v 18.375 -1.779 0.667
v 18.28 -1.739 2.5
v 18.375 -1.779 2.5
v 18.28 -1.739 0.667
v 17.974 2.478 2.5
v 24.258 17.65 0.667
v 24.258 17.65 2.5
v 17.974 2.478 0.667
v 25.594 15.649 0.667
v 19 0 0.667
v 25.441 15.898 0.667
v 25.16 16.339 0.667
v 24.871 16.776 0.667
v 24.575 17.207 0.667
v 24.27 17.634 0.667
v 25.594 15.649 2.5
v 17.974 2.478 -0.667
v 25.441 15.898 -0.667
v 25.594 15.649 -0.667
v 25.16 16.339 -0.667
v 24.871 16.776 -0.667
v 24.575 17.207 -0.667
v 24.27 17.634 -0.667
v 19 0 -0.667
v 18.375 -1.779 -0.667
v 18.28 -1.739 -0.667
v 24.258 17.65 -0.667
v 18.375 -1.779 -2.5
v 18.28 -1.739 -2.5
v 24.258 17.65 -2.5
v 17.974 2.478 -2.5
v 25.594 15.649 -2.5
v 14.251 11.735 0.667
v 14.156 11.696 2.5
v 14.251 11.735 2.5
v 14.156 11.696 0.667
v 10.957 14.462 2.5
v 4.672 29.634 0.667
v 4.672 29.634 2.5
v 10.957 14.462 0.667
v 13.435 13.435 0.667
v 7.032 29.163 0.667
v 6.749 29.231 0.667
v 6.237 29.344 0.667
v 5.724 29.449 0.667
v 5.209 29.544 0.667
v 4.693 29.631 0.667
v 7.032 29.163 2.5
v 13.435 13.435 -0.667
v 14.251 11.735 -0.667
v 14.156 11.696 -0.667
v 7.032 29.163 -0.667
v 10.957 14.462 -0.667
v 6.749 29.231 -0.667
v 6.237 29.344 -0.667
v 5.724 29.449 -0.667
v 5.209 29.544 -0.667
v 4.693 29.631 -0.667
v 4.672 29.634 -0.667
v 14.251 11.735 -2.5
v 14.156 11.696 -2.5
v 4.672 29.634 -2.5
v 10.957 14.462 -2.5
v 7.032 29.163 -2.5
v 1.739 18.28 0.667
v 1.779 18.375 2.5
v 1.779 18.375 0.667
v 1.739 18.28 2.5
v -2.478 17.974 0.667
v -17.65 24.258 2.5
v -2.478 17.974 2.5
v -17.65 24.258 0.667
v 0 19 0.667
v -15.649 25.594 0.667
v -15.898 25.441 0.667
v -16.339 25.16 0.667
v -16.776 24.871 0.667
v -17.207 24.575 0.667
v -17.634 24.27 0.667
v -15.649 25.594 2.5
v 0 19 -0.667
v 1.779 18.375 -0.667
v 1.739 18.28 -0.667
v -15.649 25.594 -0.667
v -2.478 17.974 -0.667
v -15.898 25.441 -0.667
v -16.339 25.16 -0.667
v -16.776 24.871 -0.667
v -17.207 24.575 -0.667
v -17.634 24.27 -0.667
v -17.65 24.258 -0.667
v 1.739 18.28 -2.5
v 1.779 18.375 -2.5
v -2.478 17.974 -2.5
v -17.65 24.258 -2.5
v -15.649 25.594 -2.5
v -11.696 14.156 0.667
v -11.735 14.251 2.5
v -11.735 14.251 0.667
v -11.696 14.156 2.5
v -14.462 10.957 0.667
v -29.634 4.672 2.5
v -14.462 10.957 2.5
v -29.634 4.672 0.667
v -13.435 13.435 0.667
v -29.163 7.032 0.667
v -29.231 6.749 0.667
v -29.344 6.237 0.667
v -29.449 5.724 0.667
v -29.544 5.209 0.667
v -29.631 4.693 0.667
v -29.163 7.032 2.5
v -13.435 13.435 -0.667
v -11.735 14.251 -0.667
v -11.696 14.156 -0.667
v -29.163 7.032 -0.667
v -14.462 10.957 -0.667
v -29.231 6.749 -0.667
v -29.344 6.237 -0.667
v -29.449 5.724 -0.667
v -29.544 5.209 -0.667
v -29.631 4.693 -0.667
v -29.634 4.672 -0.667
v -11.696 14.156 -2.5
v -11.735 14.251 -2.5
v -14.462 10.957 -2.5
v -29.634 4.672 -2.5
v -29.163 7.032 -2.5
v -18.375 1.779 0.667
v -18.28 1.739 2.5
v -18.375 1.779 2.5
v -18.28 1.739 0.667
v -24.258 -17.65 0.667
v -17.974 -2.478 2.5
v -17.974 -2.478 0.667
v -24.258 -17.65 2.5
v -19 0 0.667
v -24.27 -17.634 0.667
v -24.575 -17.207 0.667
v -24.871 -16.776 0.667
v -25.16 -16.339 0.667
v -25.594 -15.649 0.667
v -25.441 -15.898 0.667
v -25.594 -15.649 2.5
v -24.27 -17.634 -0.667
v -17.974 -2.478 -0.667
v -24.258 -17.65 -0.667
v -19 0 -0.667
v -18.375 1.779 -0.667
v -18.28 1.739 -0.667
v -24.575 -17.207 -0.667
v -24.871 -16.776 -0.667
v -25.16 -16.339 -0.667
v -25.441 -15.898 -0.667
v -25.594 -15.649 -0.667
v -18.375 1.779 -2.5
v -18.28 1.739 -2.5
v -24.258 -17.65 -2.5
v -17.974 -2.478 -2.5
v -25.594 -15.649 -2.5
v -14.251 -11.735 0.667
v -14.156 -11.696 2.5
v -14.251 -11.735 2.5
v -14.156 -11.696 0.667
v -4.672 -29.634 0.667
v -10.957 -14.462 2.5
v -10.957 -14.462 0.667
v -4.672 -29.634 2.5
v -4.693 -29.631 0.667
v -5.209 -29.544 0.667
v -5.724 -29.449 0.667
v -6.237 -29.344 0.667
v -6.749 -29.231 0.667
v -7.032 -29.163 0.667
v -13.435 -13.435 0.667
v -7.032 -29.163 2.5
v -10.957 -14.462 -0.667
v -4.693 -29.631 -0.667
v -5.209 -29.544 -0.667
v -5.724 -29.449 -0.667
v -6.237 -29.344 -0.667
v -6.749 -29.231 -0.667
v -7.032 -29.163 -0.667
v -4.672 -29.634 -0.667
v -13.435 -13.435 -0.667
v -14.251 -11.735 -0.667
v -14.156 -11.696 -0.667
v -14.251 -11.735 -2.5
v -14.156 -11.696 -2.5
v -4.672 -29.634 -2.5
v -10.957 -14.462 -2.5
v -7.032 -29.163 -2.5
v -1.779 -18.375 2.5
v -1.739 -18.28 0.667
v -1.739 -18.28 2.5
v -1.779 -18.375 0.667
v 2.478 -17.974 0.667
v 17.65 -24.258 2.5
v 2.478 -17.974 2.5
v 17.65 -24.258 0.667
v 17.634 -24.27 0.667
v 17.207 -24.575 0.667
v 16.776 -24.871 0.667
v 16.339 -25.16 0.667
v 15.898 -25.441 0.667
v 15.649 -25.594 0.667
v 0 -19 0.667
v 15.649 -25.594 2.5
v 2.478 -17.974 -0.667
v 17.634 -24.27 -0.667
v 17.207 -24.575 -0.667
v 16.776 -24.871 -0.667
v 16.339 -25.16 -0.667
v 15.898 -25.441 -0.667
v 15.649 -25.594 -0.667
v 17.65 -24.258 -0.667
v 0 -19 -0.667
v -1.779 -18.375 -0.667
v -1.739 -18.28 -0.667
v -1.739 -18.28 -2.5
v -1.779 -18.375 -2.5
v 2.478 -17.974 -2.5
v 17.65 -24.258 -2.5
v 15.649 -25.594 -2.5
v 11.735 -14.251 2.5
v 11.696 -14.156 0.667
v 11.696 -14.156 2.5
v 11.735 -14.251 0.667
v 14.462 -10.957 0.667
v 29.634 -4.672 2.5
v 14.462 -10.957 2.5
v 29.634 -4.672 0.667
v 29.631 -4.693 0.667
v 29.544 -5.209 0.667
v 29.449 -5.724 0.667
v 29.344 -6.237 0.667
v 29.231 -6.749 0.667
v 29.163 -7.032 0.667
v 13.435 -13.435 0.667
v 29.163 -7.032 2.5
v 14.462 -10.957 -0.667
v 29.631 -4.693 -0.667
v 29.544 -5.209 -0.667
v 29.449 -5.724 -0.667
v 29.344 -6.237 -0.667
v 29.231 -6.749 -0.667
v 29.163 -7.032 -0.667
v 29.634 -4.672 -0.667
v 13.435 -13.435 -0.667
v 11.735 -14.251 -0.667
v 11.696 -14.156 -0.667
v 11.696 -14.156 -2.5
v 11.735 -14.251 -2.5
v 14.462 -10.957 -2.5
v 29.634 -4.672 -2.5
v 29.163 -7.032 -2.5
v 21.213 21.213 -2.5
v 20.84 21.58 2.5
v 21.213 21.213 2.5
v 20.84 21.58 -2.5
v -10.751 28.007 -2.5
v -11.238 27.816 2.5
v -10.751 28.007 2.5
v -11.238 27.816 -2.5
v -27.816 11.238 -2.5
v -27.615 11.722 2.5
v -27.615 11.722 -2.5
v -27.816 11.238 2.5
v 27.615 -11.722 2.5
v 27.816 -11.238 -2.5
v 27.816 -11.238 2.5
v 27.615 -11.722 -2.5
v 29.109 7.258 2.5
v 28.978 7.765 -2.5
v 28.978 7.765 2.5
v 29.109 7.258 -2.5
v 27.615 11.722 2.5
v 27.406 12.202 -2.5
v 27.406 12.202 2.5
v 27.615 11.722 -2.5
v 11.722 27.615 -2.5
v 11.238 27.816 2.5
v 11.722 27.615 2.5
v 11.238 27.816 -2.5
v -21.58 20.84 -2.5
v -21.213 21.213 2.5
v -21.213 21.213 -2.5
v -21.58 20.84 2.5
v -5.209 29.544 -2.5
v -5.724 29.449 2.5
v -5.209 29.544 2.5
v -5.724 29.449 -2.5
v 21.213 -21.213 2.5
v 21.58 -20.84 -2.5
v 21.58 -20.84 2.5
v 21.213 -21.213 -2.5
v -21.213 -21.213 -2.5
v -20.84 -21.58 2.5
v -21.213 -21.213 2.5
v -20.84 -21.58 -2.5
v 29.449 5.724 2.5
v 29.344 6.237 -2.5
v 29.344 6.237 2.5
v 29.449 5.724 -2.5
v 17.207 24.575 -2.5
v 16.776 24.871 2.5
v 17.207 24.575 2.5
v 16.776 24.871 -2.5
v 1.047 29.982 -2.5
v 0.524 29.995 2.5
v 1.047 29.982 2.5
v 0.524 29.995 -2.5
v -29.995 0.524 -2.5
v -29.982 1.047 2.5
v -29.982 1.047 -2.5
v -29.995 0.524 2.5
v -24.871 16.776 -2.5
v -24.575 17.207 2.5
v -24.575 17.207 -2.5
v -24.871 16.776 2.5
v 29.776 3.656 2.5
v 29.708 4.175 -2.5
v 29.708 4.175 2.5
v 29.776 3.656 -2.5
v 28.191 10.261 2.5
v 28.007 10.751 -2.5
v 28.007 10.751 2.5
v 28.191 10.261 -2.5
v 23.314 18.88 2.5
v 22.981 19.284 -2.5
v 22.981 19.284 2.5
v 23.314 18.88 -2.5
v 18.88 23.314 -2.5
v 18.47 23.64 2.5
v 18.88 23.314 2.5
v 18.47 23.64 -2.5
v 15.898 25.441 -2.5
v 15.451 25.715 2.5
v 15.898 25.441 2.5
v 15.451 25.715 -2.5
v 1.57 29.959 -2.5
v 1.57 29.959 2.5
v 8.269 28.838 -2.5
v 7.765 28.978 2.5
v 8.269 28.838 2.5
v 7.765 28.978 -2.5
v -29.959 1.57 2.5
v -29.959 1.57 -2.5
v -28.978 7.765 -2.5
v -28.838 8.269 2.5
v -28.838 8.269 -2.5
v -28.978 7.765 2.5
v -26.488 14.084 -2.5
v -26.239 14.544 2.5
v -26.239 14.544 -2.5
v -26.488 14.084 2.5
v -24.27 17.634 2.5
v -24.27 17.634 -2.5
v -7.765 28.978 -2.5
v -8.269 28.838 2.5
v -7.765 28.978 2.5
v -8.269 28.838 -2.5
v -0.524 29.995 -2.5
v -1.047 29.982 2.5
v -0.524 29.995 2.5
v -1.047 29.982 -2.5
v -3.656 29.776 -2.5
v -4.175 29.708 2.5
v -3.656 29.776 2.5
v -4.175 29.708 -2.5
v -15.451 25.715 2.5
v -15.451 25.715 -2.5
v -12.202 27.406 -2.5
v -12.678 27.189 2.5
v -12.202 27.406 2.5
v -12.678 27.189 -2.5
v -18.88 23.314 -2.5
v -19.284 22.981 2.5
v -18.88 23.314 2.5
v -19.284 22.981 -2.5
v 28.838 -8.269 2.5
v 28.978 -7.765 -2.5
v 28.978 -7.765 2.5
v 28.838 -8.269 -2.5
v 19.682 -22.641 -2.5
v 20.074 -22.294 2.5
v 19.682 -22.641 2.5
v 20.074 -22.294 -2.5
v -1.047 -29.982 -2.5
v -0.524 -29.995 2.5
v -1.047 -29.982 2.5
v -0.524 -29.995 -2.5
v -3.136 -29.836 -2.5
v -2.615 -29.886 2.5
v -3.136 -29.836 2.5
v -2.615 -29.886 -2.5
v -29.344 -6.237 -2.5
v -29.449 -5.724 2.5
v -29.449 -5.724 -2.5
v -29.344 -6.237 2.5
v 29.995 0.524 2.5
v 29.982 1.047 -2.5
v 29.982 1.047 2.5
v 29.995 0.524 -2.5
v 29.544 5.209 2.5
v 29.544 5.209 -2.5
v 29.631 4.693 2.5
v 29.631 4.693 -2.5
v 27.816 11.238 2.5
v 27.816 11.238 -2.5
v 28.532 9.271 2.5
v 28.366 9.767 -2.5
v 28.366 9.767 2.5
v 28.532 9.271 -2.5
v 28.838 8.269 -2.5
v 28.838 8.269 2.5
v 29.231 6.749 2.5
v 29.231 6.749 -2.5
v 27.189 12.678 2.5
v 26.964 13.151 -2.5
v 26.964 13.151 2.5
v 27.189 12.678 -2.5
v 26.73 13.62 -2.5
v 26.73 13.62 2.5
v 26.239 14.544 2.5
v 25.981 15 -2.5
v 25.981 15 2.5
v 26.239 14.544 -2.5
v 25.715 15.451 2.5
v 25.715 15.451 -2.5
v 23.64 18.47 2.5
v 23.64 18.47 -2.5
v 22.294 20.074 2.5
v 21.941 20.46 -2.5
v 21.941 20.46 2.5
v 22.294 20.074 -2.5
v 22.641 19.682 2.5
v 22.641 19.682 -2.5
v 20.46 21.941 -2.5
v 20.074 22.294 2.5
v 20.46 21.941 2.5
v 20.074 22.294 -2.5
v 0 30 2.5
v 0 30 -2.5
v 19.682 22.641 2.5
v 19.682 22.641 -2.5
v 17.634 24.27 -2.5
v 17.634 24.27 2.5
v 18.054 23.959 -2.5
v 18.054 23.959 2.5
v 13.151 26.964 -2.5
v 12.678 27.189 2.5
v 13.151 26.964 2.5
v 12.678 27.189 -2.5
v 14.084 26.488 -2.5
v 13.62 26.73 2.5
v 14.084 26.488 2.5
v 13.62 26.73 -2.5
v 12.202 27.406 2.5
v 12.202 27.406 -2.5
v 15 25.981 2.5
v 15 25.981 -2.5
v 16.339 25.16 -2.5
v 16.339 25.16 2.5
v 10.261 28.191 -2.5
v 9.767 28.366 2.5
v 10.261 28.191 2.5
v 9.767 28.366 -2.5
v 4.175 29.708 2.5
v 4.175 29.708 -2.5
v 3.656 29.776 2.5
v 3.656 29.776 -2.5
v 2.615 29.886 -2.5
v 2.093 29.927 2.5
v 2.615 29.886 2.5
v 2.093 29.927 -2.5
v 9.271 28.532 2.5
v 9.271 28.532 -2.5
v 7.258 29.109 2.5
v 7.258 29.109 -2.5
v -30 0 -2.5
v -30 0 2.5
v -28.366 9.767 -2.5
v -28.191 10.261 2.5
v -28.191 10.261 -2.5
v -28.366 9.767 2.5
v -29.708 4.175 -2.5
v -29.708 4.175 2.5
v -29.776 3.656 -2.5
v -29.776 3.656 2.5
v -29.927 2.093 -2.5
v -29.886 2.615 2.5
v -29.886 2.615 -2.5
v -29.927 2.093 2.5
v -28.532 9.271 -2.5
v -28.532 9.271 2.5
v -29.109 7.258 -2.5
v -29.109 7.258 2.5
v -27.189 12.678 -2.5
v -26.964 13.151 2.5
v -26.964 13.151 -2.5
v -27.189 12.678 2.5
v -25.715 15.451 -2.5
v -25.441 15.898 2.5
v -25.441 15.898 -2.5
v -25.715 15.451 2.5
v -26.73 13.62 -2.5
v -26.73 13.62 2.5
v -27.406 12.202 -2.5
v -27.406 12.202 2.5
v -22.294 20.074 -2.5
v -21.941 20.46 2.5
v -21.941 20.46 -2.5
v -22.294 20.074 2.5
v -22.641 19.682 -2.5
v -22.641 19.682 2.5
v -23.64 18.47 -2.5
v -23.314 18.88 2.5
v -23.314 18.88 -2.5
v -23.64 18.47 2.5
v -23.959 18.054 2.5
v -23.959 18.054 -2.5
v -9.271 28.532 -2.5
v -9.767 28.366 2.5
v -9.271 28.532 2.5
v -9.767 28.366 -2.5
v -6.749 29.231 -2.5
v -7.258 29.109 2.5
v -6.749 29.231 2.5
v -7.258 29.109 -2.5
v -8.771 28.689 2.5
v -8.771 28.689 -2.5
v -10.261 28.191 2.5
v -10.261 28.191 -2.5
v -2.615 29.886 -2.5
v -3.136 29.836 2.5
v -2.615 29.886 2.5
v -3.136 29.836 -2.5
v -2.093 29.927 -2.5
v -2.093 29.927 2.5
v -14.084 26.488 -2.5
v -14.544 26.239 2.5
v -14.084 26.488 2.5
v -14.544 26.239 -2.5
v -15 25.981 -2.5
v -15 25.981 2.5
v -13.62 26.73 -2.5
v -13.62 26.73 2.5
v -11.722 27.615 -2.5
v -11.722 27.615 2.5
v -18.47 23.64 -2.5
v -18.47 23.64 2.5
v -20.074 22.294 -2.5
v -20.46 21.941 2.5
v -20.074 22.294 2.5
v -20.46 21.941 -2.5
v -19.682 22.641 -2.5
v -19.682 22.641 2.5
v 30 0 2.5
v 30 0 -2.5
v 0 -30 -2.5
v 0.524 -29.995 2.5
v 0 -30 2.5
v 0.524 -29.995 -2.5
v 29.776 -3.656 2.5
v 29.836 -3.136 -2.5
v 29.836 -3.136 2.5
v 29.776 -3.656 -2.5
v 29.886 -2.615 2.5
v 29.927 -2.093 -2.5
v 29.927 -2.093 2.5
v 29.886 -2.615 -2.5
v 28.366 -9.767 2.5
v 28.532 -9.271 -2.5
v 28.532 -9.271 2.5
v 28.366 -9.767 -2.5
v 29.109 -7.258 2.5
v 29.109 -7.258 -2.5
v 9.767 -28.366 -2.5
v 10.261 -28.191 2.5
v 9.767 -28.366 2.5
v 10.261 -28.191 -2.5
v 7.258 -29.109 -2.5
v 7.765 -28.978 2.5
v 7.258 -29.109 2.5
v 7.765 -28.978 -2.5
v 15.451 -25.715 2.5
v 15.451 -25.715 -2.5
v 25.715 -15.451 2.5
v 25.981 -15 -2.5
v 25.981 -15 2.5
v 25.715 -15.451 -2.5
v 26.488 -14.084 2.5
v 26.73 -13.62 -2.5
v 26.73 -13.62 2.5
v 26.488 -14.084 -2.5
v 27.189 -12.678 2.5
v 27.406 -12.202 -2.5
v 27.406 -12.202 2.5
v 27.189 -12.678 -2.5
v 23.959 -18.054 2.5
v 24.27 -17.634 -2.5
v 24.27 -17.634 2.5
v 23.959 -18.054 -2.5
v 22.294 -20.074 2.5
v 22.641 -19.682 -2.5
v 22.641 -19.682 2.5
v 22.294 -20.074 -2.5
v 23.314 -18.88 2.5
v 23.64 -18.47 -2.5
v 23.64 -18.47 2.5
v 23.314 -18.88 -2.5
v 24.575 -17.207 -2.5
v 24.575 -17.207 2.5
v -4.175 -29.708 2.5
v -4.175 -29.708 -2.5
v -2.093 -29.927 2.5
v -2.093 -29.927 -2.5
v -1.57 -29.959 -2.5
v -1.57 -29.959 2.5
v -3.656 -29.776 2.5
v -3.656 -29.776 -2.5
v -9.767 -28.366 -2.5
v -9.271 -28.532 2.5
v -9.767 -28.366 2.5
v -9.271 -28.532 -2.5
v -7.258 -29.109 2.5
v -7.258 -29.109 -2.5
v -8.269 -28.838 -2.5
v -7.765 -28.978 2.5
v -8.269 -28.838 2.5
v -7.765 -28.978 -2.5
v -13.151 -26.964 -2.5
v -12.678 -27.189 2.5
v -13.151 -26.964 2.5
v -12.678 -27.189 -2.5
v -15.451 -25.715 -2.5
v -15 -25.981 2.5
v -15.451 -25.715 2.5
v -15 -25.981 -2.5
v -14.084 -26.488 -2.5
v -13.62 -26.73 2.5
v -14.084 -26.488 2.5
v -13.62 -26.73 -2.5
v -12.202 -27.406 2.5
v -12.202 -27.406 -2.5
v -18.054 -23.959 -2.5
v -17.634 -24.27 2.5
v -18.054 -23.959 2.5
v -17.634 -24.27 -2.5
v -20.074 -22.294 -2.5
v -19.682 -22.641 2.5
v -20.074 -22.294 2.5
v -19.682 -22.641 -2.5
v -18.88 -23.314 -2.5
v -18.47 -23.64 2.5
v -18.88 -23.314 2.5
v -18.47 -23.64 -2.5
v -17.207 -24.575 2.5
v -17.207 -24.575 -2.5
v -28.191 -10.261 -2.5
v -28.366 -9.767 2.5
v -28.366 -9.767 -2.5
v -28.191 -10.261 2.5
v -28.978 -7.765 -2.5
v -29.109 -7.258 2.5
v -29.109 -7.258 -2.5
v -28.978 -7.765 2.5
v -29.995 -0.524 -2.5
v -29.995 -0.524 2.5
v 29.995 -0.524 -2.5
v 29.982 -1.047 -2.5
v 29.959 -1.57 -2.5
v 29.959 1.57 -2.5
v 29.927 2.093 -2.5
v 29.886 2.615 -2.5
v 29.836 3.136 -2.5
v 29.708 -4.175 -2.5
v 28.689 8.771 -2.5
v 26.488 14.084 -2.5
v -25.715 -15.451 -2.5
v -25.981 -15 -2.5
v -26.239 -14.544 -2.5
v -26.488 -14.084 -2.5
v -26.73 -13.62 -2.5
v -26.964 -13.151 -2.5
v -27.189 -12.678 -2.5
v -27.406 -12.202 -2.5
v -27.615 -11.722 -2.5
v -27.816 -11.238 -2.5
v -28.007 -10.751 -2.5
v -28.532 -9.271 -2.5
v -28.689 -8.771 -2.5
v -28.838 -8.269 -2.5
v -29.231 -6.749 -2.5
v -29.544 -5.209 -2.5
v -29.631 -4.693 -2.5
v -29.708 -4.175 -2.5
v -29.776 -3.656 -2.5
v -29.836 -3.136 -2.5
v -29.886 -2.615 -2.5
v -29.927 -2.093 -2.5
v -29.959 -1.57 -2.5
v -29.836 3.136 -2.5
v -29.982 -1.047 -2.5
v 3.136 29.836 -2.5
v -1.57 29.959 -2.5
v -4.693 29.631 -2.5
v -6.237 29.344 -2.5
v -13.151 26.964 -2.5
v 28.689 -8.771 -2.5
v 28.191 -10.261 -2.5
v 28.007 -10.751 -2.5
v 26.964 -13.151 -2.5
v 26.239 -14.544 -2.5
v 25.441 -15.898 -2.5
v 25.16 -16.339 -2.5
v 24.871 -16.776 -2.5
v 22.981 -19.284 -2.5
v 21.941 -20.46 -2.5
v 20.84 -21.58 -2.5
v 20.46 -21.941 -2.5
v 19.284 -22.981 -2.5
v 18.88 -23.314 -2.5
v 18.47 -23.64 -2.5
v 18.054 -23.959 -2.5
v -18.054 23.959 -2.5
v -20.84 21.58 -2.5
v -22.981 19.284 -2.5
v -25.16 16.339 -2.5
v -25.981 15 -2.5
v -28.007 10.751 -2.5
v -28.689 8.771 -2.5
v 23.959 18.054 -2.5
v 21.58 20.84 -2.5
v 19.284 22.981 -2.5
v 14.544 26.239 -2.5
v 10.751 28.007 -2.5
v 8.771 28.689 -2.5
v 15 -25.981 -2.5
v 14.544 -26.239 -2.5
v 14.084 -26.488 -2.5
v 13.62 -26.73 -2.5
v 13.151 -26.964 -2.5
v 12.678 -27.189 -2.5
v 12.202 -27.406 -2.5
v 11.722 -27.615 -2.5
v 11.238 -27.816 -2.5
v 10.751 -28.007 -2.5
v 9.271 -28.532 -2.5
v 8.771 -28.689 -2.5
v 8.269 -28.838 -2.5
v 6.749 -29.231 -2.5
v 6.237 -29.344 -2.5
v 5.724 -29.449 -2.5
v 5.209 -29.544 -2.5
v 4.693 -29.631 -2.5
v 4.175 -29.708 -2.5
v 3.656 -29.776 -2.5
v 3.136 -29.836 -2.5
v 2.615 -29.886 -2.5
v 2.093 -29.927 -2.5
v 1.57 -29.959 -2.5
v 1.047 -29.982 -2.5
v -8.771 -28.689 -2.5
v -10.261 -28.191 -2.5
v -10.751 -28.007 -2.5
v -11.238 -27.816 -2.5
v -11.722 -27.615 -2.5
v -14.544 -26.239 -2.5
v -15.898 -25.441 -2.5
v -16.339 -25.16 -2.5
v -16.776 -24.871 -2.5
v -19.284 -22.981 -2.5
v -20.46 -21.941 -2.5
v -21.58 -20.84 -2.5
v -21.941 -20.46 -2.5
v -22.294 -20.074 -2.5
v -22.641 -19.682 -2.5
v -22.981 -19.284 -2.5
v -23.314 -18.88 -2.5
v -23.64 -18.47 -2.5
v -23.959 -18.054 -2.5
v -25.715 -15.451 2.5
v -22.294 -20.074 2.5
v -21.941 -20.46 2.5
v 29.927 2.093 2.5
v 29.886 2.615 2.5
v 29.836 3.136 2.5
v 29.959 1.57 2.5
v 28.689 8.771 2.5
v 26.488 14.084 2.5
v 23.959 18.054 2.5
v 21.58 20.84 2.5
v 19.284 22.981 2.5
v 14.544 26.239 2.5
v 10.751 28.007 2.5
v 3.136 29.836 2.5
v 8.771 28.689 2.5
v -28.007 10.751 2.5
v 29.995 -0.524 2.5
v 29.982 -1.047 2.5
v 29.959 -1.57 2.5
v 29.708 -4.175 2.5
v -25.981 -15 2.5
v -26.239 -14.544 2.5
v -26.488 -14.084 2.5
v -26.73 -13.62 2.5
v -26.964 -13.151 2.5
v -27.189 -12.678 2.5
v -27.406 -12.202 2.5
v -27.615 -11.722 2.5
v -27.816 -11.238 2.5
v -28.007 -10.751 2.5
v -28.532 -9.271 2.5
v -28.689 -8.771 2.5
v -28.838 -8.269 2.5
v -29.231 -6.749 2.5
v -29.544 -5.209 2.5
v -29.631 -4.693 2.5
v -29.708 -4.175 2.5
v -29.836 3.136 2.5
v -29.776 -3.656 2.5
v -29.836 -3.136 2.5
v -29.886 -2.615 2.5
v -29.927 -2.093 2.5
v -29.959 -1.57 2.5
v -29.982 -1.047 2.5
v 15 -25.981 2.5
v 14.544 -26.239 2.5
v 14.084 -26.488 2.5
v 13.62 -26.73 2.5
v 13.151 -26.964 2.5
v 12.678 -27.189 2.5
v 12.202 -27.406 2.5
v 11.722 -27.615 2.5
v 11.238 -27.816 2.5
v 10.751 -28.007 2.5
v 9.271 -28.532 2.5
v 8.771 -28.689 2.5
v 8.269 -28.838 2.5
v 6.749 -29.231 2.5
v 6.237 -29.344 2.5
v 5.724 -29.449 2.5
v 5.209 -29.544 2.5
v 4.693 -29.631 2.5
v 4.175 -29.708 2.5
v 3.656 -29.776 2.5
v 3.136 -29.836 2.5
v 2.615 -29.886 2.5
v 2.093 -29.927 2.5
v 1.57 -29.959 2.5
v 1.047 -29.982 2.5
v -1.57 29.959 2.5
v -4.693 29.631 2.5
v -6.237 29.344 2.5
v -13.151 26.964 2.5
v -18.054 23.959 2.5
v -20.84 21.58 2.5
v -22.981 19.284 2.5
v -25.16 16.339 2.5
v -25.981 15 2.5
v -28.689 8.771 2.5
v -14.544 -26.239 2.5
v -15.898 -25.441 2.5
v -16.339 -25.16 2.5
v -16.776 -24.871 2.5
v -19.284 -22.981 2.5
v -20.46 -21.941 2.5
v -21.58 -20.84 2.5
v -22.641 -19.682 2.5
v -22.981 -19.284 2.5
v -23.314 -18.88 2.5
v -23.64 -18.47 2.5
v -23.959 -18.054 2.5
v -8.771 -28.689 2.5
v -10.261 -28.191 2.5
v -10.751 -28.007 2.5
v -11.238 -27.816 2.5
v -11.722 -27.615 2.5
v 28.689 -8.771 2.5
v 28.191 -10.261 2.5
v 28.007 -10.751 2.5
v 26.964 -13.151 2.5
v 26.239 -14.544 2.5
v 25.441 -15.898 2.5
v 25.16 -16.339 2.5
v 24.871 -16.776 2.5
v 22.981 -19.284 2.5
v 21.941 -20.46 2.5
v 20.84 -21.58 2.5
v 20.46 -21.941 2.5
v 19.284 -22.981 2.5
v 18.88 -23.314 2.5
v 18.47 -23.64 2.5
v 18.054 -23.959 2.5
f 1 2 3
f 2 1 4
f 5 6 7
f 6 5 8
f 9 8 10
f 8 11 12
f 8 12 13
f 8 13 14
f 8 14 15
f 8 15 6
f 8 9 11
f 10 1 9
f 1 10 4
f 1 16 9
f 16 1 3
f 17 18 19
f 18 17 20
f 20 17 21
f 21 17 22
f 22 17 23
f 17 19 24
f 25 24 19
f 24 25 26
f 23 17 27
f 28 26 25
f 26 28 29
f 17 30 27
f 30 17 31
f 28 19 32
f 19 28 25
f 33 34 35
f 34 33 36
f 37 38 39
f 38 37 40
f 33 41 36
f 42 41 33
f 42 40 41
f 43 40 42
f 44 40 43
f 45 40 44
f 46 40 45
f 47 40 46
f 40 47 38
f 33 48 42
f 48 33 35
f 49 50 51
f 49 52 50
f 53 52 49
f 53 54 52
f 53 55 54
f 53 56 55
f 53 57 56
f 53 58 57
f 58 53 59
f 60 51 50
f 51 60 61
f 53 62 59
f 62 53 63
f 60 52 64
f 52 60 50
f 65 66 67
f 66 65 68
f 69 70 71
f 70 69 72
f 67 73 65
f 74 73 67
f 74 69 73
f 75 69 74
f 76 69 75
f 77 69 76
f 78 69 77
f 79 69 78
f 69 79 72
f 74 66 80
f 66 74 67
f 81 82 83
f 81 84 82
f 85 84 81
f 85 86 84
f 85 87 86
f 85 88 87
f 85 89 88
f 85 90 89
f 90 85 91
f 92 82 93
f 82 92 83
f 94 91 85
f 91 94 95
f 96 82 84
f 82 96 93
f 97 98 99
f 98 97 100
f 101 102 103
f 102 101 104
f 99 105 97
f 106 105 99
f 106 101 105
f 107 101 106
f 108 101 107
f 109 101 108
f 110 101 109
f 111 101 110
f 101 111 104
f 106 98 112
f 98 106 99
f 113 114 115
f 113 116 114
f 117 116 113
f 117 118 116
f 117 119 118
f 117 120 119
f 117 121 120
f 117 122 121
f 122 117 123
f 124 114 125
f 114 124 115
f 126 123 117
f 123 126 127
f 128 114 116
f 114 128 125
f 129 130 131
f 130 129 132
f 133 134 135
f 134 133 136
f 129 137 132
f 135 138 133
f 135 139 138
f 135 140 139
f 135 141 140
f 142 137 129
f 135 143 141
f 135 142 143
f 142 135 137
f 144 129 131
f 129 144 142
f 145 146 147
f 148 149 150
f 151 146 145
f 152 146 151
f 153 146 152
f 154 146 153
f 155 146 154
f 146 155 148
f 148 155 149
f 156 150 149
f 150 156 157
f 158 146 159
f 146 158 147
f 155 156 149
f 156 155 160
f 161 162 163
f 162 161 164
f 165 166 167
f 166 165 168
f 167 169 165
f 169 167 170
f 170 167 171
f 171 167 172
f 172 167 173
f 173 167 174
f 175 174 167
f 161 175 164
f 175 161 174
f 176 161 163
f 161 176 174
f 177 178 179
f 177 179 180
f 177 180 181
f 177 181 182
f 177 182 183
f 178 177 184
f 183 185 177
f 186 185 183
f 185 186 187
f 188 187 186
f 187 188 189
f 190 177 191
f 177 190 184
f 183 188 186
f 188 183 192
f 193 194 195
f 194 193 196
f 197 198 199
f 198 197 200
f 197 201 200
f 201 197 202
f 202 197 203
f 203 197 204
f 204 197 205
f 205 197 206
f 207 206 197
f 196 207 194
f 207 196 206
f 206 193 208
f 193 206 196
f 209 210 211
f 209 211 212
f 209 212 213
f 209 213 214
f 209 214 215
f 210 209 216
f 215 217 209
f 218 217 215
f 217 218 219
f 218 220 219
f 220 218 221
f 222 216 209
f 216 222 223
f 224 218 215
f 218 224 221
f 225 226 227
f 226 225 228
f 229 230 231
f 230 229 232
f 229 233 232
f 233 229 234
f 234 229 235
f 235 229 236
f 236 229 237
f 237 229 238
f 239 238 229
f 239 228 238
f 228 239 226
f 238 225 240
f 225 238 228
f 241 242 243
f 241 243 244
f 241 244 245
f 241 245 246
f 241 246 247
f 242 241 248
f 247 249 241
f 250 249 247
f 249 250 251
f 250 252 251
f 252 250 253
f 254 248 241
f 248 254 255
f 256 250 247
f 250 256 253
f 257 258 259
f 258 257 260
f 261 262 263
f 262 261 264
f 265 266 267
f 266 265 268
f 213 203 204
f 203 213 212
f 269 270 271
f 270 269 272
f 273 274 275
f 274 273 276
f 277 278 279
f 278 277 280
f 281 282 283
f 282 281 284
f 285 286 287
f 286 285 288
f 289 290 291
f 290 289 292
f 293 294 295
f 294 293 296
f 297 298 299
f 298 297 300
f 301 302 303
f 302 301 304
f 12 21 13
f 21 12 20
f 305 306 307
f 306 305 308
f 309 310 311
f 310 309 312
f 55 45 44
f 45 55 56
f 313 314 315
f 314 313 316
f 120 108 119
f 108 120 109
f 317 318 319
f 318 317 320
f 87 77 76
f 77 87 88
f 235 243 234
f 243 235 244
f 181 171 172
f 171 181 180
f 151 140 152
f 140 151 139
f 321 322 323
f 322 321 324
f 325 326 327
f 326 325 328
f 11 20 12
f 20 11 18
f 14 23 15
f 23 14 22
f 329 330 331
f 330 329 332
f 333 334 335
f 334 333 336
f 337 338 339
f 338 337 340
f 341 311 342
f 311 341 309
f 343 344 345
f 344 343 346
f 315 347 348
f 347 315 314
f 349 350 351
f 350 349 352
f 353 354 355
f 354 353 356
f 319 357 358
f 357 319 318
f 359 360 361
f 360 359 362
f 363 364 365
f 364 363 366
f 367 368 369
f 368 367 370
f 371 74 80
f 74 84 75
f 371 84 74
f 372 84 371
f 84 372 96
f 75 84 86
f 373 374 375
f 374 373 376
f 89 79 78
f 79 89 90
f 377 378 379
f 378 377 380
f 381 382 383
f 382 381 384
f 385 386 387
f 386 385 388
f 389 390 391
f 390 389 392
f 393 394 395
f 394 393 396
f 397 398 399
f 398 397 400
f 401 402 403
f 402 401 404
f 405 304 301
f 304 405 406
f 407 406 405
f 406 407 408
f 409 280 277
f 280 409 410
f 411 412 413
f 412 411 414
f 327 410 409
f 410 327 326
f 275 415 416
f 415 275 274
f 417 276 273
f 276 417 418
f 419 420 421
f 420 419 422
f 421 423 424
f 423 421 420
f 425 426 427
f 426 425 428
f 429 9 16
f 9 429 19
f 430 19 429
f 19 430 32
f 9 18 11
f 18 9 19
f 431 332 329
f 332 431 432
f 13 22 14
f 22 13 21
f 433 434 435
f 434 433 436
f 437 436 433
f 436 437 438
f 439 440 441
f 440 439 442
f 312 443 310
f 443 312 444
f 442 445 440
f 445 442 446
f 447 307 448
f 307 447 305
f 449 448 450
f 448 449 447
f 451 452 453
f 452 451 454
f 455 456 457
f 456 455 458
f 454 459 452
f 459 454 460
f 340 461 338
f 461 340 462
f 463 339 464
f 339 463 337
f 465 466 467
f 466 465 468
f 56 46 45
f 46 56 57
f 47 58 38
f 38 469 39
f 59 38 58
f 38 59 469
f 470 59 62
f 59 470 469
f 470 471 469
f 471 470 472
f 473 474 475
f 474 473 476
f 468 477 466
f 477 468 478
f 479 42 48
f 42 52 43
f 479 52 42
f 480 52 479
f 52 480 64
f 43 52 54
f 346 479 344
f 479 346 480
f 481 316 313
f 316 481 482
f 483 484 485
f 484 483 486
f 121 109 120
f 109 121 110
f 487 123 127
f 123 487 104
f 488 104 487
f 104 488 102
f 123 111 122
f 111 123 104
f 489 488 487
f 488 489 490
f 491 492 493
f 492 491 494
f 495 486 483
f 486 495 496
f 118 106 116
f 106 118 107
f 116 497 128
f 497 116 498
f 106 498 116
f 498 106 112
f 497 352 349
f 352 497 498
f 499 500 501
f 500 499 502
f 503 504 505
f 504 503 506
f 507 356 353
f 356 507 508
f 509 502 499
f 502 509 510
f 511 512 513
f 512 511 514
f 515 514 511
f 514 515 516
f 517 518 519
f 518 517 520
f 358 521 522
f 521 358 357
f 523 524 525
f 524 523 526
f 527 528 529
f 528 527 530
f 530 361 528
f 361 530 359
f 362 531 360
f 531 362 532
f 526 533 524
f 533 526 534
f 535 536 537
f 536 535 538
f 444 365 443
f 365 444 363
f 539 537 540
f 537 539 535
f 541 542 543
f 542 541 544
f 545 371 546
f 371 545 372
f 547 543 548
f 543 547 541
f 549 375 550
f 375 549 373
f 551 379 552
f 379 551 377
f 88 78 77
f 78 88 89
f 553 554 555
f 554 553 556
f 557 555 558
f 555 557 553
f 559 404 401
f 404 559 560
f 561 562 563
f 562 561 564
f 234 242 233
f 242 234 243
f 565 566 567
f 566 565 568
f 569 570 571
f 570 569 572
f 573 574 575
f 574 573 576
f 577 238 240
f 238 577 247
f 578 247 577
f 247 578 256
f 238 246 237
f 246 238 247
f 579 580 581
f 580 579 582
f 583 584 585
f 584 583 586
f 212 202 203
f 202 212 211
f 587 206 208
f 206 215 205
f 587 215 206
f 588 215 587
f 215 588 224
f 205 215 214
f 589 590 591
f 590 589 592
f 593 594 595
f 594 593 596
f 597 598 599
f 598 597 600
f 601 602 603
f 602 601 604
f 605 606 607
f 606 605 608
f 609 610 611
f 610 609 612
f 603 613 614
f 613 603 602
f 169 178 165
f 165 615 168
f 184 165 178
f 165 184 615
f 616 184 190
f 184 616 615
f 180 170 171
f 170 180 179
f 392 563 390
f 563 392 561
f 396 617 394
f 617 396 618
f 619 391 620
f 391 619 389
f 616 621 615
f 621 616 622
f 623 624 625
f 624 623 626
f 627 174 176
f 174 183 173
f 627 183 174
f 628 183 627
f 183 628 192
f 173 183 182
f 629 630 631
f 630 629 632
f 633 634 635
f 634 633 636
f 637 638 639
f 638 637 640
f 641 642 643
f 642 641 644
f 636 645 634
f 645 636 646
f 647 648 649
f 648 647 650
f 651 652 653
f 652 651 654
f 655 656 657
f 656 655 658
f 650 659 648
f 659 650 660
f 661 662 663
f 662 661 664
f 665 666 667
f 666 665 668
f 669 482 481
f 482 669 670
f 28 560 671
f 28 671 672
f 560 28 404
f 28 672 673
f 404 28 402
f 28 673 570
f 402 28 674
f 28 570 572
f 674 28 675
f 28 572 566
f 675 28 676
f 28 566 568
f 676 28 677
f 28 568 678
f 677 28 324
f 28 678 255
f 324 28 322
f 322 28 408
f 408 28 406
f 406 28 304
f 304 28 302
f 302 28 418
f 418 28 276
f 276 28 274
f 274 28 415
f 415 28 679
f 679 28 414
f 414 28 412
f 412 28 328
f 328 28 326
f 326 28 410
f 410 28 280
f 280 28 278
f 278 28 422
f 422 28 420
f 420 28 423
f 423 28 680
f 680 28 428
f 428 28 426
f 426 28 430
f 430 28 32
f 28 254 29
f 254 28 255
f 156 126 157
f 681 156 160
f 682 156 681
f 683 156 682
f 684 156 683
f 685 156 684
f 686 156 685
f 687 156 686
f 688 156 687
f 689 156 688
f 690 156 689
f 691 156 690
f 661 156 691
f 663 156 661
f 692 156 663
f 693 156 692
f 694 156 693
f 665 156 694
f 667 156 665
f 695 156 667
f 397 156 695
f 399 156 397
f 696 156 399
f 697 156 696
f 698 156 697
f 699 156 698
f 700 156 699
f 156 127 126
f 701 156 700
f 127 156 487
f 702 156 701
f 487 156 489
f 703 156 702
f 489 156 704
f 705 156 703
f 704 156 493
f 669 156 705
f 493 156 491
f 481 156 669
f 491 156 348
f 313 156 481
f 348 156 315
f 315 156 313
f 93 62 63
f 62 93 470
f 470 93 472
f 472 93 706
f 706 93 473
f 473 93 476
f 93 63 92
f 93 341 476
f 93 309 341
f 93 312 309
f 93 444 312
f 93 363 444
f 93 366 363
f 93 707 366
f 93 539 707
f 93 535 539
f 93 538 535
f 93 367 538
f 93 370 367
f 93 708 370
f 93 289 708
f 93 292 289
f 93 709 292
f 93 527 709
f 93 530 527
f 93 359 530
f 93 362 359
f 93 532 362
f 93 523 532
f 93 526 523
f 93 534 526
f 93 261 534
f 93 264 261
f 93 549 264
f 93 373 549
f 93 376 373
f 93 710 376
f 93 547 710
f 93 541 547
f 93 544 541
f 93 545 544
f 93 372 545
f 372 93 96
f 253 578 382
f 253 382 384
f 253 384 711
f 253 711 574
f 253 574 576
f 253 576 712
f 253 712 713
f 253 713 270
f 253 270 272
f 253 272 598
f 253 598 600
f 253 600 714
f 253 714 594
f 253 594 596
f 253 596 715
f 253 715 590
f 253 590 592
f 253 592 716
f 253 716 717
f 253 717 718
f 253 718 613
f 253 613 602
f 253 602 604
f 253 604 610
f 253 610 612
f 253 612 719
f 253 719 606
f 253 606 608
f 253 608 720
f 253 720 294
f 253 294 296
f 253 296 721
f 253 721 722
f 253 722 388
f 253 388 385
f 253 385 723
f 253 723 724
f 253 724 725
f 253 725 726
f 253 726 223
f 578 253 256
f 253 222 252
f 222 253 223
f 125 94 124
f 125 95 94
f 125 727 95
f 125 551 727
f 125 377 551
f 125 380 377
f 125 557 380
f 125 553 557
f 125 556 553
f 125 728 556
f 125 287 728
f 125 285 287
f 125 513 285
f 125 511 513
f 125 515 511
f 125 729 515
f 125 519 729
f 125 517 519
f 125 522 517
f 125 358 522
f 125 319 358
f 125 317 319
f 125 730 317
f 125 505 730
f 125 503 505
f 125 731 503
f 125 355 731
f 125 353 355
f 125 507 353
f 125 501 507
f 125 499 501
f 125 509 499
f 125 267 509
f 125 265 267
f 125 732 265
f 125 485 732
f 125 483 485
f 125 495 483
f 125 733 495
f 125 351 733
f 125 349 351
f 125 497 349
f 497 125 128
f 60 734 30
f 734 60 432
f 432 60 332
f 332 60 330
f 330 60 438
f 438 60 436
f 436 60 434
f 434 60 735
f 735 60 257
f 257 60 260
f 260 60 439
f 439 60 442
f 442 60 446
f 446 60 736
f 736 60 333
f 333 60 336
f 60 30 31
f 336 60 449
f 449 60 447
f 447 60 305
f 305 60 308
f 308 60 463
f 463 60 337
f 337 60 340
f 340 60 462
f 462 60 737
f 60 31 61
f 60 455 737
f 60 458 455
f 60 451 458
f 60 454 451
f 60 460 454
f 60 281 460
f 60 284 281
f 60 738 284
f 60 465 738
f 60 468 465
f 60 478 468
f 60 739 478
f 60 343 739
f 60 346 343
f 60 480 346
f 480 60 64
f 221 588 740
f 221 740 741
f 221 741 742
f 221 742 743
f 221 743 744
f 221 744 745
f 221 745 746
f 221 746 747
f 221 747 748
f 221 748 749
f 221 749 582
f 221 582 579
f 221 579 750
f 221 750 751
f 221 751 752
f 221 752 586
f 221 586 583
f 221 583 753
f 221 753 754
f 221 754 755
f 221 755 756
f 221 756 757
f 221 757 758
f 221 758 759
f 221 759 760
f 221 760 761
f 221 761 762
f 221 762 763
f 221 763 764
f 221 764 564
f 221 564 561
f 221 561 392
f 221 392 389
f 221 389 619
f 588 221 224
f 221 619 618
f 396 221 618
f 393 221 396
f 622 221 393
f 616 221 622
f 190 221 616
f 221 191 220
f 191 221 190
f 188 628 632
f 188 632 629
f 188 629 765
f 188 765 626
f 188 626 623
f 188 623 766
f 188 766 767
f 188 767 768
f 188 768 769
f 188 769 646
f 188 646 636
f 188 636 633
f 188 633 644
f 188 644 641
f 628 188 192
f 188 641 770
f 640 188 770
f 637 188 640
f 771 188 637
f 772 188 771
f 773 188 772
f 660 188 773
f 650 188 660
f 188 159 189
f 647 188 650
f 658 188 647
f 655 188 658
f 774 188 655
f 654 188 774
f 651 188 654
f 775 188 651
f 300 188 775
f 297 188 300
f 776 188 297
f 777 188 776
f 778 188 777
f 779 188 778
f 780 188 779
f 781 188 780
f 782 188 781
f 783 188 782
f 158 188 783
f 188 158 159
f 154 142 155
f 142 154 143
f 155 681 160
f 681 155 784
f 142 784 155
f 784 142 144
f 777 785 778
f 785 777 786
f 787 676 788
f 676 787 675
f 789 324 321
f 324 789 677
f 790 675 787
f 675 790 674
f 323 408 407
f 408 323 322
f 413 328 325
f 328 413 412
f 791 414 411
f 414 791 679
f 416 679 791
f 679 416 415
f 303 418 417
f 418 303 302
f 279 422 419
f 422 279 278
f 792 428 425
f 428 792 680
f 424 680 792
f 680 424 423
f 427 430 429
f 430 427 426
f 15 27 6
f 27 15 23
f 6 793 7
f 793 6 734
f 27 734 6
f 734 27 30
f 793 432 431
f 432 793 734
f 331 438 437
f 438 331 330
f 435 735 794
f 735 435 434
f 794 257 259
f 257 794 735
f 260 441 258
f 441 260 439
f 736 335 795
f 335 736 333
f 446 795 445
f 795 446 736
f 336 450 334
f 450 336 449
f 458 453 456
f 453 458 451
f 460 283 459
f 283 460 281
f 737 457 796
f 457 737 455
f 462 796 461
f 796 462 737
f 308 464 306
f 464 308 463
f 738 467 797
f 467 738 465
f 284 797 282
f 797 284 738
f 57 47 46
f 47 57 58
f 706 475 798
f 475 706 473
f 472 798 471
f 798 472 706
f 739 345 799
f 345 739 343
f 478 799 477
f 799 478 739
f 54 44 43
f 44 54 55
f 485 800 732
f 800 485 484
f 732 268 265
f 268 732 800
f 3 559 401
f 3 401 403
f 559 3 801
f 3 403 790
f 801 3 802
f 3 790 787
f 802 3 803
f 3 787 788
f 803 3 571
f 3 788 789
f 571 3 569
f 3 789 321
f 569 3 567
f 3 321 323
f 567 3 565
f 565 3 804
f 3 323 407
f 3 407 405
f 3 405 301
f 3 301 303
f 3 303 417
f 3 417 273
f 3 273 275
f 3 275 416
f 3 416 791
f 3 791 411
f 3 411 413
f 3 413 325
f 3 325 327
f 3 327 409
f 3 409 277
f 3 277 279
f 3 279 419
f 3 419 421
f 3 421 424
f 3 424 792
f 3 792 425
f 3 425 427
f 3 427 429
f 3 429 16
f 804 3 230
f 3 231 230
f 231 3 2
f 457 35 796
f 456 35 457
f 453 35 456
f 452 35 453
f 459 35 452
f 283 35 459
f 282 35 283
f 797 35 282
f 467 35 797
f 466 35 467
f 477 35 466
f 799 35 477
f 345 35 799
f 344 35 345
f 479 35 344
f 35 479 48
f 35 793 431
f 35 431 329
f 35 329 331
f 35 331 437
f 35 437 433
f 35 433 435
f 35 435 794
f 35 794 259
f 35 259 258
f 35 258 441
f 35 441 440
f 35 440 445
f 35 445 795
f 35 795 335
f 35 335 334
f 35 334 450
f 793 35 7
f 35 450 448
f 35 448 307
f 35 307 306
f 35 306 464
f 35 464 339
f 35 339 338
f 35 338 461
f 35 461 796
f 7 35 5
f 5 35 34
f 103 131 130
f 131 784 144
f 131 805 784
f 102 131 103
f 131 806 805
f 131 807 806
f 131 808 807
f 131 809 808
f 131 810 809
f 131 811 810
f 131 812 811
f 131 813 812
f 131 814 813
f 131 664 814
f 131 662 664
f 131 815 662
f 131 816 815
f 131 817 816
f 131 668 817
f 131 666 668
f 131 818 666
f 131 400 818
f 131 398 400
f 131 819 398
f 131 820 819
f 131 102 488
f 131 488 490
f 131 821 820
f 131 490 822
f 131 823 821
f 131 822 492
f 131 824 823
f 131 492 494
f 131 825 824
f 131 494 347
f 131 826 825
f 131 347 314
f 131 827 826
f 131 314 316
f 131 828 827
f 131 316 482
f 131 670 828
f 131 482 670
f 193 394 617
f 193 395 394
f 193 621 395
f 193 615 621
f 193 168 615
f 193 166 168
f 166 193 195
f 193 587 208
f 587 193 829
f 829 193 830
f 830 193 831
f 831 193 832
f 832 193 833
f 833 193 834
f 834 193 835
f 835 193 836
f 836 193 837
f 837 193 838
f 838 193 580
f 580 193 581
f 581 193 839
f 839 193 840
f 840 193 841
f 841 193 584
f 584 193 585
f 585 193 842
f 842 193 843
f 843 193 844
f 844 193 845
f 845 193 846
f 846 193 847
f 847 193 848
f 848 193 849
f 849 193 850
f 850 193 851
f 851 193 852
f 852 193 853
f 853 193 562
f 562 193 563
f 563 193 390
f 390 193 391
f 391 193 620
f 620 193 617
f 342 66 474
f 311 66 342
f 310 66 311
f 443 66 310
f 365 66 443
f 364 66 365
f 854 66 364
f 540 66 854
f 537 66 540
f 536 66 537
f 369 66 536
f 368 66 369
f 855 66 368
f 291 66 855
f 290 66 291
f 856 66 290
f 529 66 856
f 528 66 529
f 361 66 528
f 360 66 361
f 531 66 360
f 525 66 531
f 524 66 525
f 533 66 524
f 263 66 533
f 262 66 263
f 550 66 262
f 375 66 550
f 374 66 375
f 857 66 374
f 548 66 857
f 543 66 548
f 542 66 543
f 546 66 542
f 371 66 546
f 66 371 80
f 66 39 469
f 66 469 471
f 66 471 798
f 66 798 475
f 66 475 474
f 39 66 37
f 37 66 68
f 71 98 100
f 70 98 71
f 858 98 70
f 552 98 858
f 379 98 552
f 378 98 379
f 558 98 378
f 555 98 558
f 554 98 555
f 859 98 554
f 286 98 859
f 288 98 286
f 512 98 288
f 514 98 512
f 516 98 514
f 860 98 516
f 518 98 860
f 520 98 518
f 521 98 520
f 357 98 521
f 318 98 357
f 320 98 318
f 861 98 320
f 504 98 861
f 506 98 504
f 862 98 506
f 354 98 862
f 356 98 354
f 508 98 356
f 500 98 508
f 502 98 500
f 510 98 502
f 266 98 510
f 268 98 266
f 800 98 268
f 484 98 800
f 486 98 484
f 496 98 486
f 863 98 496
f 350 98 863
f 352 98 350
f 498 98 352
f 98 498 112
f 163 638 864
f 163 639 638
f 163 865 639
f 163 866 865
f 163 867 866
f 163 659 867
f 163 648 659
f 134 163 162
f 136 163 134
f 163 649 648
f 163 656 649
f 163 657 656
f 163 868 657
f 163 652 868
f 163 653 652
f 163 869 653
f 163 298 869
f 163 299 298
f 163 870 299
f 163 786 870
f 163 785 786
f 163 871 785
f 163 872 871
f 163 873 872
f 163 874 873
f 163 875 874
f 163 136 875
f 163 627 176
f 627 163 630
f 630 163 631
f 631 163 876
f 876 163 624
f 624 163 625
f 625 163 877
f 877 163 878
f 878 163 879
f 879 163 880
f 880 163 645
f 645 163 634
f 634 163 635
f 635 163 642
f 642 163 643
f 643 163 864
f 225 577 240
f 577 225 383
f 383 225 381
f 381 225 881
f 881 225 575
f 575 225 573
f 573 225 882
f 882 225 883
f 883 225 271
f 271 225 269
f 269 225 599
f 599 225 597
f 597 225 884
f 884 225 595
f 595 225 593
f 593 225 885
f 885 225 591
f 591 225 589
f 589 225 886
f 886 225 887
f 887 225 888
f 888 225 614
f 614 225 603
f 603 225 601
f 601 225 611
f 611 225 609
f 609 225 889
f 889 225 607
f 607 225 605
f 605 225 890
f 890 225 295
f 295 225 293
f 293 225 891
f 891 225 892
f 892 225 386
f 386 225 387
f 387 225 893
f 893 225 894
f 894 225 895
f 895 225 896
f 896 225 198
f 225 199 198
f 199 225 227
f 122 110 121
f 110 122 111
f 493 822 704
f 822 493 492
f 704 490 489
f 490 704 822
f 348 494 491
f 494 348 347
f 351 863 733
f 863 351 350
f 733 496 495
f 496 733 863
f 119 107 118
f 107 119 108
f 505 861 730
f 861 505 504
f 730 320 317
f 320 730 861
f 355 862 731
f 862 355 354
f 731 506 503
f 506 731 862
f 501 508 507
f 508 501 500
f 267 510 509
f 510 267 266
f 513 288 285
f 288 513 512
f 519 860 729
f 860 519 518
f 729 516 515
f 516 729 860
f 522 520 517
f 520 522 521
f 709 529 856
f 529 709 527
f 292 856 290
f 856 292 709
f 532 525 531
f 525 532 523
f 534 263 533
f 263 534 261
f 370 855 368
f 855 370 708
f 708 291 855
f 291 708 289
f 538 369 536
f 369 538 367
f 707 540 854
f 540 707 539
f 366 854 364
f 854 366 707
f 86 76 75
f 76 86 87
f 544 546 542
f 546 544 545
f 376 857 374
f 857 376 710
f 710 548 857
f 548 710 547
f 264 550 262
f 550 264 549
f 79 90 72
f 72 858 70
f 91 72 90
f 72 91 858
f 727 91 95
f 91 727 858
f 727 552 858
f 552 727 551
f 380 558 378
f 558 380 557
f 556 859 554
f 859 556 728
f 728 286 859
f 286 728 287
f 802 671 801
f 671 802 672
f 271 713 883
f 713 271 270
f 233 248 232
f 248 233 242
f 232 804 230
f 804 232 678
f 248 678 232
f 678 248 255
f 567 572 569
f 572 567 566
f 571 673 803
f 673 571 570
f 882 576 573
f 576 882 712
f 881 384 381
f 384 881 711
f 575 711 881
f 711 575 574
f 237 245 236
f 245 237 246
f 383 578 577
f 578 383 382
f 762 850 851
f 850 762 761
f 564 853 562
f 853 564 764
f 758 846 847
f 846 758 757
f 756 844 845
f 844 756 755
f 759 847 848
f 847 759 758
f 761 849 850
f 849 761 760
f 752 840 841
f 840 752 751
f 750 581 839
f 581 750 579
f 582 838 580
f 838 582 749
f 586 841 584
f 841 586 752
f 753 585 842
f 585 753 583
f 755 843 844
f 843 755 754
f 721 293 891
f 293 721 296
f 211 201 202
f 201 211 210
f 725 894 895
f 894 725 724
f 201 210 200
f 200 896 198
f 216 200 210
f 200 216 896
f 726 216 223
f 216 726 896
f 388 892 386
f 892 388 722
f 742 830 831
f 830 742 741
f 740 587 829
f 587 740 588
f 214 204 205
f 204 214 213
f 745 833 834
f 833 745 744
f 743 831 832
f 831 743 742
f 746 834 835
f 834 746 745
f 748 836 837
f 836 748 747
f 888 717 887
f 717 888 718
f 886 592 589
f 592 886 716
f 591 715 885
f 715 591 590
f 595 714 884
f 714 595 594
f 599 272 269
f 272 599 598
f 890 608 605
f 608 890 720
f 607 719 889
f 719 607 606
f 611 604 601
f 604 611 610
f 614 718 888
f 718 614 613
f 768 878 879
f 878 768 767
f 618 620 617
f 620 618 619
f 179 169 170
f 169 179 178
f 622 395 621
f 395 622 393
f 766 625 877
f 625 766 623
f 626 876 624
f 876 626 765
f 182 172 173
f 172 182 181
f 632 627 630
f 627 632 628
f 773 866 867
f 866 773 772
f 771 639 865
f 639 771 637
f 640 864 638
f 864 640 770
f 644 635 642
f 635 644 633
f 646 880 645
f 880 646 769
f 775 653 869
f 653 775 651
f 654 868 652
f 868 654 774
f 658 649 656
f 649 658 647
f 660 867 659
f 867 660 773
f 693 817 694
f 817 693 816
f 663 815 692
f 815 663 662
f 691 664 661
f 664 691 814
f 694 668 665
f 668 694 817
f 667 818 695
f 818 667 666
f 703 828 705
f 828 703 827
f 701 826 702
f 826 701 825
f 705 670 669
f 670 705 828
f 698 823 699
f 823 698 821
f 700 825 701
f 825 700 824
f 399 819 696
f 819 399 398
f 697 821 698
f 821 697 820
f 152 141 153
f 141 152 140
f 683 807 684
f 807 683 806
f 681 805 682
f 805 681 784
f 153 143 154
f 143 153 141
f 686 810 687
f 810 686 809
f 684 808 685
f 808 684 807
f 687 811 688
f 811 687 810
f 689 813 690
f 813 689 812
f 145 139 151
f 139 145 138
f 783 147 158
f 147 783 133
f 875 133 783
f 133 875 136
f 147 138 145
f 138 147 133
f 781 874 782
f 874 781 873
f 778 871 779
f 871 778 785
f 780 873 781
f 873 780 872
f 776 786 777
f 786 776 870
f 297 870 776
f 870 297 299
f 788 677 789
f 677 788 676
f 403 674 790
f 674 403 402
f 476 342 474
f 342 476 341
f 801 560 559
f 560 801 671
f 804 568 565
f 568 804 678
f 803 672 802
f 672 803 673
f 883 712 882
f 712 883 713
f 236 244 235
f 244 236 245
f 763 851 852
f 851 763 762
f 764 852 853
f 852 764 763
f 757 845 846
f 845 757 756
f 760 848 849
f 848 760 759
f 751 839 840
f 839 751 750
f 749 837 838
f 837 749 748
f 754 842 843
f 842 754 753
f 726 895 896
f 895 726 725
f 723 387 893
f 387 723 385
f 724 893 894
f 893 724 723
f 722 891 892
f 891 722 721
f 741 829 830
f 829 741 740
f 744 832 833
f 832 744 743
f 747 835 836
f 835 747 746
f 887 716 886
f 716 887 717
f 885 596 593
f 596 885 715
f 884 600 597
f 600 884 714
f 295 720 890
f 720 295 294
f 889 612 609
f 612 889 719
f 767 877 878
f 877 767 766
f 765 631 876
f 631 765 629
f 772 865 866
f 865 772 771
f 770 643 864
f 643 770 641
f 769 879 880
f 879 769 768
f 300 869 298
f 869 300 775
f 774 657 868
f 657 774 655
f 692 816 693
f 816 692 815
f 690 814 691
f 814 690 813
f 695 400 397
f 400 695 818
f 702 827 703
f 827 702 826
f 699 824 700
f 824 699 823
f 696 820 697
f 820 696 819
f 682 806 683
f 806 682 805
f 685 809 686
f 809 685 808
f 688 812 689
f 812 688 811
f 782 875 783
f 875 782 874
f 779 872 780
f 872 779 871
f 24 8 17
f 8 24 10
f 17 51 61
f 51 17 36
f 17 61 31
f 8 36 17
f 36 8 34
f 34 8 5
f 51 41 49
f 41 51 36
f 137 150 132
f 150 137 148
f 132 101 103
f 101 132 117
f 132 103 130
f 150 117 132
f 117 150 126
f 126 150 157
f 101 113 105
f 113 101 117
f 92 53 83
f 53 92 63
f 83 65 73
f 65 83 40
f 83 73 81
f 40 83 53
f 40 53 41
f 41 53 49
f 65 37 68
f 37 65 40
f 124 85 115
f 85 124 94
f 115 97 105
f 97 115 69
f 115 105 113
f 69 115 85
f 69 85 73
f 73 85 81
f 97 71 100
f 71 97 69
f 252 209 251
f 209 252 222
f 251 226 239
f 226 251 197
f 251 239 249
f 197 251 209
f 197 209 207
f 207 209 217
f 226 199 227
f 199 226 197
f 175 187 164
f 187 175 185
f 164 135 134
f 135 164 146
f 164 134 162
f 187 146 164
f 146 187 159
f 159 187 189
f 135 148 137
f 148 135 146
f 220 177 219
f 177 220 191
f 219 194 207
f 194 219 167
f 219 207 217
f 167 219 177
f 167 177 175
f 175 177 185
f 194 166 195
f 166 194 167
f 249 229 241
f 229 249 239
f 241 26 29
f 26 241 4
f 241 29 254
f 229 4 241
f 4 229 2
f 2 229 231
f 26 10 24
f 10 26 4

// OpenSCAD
// This was a complex object created to learn openSCAD
// and to explore the 3D printers at VCU

outer_radius = 30;
inner_radius = 19;
thickness = 5;
num_edges = 8;
x = inner_radius;
y = 0;

difference()
{
    //create the base circle and remove the inside
    cylinder(thickness,outer_radius,outer_radius,center = true, $fn=360);
    cylinder(thickness+1,inner_radius,inner_radius,center = true, $fn = num_edges);
    
    
    for( i = [0:num_edges-1])
    {
        rotate([0,0,i*(360/num_edges)])
        {
            //create the lines on the top (1) and bottom (-1) of the file
            for(j = [1,-1])
            {
                // move lines from center to edge
                translate([x+4,y+12 ,2*j])
                {
                    rotate([0,0,((180-360/num_edges)/2)-180])
                    {
                        cube([29,2,thickness/3+1], center = true);
                    }
                }
            }
        }
    }
}
